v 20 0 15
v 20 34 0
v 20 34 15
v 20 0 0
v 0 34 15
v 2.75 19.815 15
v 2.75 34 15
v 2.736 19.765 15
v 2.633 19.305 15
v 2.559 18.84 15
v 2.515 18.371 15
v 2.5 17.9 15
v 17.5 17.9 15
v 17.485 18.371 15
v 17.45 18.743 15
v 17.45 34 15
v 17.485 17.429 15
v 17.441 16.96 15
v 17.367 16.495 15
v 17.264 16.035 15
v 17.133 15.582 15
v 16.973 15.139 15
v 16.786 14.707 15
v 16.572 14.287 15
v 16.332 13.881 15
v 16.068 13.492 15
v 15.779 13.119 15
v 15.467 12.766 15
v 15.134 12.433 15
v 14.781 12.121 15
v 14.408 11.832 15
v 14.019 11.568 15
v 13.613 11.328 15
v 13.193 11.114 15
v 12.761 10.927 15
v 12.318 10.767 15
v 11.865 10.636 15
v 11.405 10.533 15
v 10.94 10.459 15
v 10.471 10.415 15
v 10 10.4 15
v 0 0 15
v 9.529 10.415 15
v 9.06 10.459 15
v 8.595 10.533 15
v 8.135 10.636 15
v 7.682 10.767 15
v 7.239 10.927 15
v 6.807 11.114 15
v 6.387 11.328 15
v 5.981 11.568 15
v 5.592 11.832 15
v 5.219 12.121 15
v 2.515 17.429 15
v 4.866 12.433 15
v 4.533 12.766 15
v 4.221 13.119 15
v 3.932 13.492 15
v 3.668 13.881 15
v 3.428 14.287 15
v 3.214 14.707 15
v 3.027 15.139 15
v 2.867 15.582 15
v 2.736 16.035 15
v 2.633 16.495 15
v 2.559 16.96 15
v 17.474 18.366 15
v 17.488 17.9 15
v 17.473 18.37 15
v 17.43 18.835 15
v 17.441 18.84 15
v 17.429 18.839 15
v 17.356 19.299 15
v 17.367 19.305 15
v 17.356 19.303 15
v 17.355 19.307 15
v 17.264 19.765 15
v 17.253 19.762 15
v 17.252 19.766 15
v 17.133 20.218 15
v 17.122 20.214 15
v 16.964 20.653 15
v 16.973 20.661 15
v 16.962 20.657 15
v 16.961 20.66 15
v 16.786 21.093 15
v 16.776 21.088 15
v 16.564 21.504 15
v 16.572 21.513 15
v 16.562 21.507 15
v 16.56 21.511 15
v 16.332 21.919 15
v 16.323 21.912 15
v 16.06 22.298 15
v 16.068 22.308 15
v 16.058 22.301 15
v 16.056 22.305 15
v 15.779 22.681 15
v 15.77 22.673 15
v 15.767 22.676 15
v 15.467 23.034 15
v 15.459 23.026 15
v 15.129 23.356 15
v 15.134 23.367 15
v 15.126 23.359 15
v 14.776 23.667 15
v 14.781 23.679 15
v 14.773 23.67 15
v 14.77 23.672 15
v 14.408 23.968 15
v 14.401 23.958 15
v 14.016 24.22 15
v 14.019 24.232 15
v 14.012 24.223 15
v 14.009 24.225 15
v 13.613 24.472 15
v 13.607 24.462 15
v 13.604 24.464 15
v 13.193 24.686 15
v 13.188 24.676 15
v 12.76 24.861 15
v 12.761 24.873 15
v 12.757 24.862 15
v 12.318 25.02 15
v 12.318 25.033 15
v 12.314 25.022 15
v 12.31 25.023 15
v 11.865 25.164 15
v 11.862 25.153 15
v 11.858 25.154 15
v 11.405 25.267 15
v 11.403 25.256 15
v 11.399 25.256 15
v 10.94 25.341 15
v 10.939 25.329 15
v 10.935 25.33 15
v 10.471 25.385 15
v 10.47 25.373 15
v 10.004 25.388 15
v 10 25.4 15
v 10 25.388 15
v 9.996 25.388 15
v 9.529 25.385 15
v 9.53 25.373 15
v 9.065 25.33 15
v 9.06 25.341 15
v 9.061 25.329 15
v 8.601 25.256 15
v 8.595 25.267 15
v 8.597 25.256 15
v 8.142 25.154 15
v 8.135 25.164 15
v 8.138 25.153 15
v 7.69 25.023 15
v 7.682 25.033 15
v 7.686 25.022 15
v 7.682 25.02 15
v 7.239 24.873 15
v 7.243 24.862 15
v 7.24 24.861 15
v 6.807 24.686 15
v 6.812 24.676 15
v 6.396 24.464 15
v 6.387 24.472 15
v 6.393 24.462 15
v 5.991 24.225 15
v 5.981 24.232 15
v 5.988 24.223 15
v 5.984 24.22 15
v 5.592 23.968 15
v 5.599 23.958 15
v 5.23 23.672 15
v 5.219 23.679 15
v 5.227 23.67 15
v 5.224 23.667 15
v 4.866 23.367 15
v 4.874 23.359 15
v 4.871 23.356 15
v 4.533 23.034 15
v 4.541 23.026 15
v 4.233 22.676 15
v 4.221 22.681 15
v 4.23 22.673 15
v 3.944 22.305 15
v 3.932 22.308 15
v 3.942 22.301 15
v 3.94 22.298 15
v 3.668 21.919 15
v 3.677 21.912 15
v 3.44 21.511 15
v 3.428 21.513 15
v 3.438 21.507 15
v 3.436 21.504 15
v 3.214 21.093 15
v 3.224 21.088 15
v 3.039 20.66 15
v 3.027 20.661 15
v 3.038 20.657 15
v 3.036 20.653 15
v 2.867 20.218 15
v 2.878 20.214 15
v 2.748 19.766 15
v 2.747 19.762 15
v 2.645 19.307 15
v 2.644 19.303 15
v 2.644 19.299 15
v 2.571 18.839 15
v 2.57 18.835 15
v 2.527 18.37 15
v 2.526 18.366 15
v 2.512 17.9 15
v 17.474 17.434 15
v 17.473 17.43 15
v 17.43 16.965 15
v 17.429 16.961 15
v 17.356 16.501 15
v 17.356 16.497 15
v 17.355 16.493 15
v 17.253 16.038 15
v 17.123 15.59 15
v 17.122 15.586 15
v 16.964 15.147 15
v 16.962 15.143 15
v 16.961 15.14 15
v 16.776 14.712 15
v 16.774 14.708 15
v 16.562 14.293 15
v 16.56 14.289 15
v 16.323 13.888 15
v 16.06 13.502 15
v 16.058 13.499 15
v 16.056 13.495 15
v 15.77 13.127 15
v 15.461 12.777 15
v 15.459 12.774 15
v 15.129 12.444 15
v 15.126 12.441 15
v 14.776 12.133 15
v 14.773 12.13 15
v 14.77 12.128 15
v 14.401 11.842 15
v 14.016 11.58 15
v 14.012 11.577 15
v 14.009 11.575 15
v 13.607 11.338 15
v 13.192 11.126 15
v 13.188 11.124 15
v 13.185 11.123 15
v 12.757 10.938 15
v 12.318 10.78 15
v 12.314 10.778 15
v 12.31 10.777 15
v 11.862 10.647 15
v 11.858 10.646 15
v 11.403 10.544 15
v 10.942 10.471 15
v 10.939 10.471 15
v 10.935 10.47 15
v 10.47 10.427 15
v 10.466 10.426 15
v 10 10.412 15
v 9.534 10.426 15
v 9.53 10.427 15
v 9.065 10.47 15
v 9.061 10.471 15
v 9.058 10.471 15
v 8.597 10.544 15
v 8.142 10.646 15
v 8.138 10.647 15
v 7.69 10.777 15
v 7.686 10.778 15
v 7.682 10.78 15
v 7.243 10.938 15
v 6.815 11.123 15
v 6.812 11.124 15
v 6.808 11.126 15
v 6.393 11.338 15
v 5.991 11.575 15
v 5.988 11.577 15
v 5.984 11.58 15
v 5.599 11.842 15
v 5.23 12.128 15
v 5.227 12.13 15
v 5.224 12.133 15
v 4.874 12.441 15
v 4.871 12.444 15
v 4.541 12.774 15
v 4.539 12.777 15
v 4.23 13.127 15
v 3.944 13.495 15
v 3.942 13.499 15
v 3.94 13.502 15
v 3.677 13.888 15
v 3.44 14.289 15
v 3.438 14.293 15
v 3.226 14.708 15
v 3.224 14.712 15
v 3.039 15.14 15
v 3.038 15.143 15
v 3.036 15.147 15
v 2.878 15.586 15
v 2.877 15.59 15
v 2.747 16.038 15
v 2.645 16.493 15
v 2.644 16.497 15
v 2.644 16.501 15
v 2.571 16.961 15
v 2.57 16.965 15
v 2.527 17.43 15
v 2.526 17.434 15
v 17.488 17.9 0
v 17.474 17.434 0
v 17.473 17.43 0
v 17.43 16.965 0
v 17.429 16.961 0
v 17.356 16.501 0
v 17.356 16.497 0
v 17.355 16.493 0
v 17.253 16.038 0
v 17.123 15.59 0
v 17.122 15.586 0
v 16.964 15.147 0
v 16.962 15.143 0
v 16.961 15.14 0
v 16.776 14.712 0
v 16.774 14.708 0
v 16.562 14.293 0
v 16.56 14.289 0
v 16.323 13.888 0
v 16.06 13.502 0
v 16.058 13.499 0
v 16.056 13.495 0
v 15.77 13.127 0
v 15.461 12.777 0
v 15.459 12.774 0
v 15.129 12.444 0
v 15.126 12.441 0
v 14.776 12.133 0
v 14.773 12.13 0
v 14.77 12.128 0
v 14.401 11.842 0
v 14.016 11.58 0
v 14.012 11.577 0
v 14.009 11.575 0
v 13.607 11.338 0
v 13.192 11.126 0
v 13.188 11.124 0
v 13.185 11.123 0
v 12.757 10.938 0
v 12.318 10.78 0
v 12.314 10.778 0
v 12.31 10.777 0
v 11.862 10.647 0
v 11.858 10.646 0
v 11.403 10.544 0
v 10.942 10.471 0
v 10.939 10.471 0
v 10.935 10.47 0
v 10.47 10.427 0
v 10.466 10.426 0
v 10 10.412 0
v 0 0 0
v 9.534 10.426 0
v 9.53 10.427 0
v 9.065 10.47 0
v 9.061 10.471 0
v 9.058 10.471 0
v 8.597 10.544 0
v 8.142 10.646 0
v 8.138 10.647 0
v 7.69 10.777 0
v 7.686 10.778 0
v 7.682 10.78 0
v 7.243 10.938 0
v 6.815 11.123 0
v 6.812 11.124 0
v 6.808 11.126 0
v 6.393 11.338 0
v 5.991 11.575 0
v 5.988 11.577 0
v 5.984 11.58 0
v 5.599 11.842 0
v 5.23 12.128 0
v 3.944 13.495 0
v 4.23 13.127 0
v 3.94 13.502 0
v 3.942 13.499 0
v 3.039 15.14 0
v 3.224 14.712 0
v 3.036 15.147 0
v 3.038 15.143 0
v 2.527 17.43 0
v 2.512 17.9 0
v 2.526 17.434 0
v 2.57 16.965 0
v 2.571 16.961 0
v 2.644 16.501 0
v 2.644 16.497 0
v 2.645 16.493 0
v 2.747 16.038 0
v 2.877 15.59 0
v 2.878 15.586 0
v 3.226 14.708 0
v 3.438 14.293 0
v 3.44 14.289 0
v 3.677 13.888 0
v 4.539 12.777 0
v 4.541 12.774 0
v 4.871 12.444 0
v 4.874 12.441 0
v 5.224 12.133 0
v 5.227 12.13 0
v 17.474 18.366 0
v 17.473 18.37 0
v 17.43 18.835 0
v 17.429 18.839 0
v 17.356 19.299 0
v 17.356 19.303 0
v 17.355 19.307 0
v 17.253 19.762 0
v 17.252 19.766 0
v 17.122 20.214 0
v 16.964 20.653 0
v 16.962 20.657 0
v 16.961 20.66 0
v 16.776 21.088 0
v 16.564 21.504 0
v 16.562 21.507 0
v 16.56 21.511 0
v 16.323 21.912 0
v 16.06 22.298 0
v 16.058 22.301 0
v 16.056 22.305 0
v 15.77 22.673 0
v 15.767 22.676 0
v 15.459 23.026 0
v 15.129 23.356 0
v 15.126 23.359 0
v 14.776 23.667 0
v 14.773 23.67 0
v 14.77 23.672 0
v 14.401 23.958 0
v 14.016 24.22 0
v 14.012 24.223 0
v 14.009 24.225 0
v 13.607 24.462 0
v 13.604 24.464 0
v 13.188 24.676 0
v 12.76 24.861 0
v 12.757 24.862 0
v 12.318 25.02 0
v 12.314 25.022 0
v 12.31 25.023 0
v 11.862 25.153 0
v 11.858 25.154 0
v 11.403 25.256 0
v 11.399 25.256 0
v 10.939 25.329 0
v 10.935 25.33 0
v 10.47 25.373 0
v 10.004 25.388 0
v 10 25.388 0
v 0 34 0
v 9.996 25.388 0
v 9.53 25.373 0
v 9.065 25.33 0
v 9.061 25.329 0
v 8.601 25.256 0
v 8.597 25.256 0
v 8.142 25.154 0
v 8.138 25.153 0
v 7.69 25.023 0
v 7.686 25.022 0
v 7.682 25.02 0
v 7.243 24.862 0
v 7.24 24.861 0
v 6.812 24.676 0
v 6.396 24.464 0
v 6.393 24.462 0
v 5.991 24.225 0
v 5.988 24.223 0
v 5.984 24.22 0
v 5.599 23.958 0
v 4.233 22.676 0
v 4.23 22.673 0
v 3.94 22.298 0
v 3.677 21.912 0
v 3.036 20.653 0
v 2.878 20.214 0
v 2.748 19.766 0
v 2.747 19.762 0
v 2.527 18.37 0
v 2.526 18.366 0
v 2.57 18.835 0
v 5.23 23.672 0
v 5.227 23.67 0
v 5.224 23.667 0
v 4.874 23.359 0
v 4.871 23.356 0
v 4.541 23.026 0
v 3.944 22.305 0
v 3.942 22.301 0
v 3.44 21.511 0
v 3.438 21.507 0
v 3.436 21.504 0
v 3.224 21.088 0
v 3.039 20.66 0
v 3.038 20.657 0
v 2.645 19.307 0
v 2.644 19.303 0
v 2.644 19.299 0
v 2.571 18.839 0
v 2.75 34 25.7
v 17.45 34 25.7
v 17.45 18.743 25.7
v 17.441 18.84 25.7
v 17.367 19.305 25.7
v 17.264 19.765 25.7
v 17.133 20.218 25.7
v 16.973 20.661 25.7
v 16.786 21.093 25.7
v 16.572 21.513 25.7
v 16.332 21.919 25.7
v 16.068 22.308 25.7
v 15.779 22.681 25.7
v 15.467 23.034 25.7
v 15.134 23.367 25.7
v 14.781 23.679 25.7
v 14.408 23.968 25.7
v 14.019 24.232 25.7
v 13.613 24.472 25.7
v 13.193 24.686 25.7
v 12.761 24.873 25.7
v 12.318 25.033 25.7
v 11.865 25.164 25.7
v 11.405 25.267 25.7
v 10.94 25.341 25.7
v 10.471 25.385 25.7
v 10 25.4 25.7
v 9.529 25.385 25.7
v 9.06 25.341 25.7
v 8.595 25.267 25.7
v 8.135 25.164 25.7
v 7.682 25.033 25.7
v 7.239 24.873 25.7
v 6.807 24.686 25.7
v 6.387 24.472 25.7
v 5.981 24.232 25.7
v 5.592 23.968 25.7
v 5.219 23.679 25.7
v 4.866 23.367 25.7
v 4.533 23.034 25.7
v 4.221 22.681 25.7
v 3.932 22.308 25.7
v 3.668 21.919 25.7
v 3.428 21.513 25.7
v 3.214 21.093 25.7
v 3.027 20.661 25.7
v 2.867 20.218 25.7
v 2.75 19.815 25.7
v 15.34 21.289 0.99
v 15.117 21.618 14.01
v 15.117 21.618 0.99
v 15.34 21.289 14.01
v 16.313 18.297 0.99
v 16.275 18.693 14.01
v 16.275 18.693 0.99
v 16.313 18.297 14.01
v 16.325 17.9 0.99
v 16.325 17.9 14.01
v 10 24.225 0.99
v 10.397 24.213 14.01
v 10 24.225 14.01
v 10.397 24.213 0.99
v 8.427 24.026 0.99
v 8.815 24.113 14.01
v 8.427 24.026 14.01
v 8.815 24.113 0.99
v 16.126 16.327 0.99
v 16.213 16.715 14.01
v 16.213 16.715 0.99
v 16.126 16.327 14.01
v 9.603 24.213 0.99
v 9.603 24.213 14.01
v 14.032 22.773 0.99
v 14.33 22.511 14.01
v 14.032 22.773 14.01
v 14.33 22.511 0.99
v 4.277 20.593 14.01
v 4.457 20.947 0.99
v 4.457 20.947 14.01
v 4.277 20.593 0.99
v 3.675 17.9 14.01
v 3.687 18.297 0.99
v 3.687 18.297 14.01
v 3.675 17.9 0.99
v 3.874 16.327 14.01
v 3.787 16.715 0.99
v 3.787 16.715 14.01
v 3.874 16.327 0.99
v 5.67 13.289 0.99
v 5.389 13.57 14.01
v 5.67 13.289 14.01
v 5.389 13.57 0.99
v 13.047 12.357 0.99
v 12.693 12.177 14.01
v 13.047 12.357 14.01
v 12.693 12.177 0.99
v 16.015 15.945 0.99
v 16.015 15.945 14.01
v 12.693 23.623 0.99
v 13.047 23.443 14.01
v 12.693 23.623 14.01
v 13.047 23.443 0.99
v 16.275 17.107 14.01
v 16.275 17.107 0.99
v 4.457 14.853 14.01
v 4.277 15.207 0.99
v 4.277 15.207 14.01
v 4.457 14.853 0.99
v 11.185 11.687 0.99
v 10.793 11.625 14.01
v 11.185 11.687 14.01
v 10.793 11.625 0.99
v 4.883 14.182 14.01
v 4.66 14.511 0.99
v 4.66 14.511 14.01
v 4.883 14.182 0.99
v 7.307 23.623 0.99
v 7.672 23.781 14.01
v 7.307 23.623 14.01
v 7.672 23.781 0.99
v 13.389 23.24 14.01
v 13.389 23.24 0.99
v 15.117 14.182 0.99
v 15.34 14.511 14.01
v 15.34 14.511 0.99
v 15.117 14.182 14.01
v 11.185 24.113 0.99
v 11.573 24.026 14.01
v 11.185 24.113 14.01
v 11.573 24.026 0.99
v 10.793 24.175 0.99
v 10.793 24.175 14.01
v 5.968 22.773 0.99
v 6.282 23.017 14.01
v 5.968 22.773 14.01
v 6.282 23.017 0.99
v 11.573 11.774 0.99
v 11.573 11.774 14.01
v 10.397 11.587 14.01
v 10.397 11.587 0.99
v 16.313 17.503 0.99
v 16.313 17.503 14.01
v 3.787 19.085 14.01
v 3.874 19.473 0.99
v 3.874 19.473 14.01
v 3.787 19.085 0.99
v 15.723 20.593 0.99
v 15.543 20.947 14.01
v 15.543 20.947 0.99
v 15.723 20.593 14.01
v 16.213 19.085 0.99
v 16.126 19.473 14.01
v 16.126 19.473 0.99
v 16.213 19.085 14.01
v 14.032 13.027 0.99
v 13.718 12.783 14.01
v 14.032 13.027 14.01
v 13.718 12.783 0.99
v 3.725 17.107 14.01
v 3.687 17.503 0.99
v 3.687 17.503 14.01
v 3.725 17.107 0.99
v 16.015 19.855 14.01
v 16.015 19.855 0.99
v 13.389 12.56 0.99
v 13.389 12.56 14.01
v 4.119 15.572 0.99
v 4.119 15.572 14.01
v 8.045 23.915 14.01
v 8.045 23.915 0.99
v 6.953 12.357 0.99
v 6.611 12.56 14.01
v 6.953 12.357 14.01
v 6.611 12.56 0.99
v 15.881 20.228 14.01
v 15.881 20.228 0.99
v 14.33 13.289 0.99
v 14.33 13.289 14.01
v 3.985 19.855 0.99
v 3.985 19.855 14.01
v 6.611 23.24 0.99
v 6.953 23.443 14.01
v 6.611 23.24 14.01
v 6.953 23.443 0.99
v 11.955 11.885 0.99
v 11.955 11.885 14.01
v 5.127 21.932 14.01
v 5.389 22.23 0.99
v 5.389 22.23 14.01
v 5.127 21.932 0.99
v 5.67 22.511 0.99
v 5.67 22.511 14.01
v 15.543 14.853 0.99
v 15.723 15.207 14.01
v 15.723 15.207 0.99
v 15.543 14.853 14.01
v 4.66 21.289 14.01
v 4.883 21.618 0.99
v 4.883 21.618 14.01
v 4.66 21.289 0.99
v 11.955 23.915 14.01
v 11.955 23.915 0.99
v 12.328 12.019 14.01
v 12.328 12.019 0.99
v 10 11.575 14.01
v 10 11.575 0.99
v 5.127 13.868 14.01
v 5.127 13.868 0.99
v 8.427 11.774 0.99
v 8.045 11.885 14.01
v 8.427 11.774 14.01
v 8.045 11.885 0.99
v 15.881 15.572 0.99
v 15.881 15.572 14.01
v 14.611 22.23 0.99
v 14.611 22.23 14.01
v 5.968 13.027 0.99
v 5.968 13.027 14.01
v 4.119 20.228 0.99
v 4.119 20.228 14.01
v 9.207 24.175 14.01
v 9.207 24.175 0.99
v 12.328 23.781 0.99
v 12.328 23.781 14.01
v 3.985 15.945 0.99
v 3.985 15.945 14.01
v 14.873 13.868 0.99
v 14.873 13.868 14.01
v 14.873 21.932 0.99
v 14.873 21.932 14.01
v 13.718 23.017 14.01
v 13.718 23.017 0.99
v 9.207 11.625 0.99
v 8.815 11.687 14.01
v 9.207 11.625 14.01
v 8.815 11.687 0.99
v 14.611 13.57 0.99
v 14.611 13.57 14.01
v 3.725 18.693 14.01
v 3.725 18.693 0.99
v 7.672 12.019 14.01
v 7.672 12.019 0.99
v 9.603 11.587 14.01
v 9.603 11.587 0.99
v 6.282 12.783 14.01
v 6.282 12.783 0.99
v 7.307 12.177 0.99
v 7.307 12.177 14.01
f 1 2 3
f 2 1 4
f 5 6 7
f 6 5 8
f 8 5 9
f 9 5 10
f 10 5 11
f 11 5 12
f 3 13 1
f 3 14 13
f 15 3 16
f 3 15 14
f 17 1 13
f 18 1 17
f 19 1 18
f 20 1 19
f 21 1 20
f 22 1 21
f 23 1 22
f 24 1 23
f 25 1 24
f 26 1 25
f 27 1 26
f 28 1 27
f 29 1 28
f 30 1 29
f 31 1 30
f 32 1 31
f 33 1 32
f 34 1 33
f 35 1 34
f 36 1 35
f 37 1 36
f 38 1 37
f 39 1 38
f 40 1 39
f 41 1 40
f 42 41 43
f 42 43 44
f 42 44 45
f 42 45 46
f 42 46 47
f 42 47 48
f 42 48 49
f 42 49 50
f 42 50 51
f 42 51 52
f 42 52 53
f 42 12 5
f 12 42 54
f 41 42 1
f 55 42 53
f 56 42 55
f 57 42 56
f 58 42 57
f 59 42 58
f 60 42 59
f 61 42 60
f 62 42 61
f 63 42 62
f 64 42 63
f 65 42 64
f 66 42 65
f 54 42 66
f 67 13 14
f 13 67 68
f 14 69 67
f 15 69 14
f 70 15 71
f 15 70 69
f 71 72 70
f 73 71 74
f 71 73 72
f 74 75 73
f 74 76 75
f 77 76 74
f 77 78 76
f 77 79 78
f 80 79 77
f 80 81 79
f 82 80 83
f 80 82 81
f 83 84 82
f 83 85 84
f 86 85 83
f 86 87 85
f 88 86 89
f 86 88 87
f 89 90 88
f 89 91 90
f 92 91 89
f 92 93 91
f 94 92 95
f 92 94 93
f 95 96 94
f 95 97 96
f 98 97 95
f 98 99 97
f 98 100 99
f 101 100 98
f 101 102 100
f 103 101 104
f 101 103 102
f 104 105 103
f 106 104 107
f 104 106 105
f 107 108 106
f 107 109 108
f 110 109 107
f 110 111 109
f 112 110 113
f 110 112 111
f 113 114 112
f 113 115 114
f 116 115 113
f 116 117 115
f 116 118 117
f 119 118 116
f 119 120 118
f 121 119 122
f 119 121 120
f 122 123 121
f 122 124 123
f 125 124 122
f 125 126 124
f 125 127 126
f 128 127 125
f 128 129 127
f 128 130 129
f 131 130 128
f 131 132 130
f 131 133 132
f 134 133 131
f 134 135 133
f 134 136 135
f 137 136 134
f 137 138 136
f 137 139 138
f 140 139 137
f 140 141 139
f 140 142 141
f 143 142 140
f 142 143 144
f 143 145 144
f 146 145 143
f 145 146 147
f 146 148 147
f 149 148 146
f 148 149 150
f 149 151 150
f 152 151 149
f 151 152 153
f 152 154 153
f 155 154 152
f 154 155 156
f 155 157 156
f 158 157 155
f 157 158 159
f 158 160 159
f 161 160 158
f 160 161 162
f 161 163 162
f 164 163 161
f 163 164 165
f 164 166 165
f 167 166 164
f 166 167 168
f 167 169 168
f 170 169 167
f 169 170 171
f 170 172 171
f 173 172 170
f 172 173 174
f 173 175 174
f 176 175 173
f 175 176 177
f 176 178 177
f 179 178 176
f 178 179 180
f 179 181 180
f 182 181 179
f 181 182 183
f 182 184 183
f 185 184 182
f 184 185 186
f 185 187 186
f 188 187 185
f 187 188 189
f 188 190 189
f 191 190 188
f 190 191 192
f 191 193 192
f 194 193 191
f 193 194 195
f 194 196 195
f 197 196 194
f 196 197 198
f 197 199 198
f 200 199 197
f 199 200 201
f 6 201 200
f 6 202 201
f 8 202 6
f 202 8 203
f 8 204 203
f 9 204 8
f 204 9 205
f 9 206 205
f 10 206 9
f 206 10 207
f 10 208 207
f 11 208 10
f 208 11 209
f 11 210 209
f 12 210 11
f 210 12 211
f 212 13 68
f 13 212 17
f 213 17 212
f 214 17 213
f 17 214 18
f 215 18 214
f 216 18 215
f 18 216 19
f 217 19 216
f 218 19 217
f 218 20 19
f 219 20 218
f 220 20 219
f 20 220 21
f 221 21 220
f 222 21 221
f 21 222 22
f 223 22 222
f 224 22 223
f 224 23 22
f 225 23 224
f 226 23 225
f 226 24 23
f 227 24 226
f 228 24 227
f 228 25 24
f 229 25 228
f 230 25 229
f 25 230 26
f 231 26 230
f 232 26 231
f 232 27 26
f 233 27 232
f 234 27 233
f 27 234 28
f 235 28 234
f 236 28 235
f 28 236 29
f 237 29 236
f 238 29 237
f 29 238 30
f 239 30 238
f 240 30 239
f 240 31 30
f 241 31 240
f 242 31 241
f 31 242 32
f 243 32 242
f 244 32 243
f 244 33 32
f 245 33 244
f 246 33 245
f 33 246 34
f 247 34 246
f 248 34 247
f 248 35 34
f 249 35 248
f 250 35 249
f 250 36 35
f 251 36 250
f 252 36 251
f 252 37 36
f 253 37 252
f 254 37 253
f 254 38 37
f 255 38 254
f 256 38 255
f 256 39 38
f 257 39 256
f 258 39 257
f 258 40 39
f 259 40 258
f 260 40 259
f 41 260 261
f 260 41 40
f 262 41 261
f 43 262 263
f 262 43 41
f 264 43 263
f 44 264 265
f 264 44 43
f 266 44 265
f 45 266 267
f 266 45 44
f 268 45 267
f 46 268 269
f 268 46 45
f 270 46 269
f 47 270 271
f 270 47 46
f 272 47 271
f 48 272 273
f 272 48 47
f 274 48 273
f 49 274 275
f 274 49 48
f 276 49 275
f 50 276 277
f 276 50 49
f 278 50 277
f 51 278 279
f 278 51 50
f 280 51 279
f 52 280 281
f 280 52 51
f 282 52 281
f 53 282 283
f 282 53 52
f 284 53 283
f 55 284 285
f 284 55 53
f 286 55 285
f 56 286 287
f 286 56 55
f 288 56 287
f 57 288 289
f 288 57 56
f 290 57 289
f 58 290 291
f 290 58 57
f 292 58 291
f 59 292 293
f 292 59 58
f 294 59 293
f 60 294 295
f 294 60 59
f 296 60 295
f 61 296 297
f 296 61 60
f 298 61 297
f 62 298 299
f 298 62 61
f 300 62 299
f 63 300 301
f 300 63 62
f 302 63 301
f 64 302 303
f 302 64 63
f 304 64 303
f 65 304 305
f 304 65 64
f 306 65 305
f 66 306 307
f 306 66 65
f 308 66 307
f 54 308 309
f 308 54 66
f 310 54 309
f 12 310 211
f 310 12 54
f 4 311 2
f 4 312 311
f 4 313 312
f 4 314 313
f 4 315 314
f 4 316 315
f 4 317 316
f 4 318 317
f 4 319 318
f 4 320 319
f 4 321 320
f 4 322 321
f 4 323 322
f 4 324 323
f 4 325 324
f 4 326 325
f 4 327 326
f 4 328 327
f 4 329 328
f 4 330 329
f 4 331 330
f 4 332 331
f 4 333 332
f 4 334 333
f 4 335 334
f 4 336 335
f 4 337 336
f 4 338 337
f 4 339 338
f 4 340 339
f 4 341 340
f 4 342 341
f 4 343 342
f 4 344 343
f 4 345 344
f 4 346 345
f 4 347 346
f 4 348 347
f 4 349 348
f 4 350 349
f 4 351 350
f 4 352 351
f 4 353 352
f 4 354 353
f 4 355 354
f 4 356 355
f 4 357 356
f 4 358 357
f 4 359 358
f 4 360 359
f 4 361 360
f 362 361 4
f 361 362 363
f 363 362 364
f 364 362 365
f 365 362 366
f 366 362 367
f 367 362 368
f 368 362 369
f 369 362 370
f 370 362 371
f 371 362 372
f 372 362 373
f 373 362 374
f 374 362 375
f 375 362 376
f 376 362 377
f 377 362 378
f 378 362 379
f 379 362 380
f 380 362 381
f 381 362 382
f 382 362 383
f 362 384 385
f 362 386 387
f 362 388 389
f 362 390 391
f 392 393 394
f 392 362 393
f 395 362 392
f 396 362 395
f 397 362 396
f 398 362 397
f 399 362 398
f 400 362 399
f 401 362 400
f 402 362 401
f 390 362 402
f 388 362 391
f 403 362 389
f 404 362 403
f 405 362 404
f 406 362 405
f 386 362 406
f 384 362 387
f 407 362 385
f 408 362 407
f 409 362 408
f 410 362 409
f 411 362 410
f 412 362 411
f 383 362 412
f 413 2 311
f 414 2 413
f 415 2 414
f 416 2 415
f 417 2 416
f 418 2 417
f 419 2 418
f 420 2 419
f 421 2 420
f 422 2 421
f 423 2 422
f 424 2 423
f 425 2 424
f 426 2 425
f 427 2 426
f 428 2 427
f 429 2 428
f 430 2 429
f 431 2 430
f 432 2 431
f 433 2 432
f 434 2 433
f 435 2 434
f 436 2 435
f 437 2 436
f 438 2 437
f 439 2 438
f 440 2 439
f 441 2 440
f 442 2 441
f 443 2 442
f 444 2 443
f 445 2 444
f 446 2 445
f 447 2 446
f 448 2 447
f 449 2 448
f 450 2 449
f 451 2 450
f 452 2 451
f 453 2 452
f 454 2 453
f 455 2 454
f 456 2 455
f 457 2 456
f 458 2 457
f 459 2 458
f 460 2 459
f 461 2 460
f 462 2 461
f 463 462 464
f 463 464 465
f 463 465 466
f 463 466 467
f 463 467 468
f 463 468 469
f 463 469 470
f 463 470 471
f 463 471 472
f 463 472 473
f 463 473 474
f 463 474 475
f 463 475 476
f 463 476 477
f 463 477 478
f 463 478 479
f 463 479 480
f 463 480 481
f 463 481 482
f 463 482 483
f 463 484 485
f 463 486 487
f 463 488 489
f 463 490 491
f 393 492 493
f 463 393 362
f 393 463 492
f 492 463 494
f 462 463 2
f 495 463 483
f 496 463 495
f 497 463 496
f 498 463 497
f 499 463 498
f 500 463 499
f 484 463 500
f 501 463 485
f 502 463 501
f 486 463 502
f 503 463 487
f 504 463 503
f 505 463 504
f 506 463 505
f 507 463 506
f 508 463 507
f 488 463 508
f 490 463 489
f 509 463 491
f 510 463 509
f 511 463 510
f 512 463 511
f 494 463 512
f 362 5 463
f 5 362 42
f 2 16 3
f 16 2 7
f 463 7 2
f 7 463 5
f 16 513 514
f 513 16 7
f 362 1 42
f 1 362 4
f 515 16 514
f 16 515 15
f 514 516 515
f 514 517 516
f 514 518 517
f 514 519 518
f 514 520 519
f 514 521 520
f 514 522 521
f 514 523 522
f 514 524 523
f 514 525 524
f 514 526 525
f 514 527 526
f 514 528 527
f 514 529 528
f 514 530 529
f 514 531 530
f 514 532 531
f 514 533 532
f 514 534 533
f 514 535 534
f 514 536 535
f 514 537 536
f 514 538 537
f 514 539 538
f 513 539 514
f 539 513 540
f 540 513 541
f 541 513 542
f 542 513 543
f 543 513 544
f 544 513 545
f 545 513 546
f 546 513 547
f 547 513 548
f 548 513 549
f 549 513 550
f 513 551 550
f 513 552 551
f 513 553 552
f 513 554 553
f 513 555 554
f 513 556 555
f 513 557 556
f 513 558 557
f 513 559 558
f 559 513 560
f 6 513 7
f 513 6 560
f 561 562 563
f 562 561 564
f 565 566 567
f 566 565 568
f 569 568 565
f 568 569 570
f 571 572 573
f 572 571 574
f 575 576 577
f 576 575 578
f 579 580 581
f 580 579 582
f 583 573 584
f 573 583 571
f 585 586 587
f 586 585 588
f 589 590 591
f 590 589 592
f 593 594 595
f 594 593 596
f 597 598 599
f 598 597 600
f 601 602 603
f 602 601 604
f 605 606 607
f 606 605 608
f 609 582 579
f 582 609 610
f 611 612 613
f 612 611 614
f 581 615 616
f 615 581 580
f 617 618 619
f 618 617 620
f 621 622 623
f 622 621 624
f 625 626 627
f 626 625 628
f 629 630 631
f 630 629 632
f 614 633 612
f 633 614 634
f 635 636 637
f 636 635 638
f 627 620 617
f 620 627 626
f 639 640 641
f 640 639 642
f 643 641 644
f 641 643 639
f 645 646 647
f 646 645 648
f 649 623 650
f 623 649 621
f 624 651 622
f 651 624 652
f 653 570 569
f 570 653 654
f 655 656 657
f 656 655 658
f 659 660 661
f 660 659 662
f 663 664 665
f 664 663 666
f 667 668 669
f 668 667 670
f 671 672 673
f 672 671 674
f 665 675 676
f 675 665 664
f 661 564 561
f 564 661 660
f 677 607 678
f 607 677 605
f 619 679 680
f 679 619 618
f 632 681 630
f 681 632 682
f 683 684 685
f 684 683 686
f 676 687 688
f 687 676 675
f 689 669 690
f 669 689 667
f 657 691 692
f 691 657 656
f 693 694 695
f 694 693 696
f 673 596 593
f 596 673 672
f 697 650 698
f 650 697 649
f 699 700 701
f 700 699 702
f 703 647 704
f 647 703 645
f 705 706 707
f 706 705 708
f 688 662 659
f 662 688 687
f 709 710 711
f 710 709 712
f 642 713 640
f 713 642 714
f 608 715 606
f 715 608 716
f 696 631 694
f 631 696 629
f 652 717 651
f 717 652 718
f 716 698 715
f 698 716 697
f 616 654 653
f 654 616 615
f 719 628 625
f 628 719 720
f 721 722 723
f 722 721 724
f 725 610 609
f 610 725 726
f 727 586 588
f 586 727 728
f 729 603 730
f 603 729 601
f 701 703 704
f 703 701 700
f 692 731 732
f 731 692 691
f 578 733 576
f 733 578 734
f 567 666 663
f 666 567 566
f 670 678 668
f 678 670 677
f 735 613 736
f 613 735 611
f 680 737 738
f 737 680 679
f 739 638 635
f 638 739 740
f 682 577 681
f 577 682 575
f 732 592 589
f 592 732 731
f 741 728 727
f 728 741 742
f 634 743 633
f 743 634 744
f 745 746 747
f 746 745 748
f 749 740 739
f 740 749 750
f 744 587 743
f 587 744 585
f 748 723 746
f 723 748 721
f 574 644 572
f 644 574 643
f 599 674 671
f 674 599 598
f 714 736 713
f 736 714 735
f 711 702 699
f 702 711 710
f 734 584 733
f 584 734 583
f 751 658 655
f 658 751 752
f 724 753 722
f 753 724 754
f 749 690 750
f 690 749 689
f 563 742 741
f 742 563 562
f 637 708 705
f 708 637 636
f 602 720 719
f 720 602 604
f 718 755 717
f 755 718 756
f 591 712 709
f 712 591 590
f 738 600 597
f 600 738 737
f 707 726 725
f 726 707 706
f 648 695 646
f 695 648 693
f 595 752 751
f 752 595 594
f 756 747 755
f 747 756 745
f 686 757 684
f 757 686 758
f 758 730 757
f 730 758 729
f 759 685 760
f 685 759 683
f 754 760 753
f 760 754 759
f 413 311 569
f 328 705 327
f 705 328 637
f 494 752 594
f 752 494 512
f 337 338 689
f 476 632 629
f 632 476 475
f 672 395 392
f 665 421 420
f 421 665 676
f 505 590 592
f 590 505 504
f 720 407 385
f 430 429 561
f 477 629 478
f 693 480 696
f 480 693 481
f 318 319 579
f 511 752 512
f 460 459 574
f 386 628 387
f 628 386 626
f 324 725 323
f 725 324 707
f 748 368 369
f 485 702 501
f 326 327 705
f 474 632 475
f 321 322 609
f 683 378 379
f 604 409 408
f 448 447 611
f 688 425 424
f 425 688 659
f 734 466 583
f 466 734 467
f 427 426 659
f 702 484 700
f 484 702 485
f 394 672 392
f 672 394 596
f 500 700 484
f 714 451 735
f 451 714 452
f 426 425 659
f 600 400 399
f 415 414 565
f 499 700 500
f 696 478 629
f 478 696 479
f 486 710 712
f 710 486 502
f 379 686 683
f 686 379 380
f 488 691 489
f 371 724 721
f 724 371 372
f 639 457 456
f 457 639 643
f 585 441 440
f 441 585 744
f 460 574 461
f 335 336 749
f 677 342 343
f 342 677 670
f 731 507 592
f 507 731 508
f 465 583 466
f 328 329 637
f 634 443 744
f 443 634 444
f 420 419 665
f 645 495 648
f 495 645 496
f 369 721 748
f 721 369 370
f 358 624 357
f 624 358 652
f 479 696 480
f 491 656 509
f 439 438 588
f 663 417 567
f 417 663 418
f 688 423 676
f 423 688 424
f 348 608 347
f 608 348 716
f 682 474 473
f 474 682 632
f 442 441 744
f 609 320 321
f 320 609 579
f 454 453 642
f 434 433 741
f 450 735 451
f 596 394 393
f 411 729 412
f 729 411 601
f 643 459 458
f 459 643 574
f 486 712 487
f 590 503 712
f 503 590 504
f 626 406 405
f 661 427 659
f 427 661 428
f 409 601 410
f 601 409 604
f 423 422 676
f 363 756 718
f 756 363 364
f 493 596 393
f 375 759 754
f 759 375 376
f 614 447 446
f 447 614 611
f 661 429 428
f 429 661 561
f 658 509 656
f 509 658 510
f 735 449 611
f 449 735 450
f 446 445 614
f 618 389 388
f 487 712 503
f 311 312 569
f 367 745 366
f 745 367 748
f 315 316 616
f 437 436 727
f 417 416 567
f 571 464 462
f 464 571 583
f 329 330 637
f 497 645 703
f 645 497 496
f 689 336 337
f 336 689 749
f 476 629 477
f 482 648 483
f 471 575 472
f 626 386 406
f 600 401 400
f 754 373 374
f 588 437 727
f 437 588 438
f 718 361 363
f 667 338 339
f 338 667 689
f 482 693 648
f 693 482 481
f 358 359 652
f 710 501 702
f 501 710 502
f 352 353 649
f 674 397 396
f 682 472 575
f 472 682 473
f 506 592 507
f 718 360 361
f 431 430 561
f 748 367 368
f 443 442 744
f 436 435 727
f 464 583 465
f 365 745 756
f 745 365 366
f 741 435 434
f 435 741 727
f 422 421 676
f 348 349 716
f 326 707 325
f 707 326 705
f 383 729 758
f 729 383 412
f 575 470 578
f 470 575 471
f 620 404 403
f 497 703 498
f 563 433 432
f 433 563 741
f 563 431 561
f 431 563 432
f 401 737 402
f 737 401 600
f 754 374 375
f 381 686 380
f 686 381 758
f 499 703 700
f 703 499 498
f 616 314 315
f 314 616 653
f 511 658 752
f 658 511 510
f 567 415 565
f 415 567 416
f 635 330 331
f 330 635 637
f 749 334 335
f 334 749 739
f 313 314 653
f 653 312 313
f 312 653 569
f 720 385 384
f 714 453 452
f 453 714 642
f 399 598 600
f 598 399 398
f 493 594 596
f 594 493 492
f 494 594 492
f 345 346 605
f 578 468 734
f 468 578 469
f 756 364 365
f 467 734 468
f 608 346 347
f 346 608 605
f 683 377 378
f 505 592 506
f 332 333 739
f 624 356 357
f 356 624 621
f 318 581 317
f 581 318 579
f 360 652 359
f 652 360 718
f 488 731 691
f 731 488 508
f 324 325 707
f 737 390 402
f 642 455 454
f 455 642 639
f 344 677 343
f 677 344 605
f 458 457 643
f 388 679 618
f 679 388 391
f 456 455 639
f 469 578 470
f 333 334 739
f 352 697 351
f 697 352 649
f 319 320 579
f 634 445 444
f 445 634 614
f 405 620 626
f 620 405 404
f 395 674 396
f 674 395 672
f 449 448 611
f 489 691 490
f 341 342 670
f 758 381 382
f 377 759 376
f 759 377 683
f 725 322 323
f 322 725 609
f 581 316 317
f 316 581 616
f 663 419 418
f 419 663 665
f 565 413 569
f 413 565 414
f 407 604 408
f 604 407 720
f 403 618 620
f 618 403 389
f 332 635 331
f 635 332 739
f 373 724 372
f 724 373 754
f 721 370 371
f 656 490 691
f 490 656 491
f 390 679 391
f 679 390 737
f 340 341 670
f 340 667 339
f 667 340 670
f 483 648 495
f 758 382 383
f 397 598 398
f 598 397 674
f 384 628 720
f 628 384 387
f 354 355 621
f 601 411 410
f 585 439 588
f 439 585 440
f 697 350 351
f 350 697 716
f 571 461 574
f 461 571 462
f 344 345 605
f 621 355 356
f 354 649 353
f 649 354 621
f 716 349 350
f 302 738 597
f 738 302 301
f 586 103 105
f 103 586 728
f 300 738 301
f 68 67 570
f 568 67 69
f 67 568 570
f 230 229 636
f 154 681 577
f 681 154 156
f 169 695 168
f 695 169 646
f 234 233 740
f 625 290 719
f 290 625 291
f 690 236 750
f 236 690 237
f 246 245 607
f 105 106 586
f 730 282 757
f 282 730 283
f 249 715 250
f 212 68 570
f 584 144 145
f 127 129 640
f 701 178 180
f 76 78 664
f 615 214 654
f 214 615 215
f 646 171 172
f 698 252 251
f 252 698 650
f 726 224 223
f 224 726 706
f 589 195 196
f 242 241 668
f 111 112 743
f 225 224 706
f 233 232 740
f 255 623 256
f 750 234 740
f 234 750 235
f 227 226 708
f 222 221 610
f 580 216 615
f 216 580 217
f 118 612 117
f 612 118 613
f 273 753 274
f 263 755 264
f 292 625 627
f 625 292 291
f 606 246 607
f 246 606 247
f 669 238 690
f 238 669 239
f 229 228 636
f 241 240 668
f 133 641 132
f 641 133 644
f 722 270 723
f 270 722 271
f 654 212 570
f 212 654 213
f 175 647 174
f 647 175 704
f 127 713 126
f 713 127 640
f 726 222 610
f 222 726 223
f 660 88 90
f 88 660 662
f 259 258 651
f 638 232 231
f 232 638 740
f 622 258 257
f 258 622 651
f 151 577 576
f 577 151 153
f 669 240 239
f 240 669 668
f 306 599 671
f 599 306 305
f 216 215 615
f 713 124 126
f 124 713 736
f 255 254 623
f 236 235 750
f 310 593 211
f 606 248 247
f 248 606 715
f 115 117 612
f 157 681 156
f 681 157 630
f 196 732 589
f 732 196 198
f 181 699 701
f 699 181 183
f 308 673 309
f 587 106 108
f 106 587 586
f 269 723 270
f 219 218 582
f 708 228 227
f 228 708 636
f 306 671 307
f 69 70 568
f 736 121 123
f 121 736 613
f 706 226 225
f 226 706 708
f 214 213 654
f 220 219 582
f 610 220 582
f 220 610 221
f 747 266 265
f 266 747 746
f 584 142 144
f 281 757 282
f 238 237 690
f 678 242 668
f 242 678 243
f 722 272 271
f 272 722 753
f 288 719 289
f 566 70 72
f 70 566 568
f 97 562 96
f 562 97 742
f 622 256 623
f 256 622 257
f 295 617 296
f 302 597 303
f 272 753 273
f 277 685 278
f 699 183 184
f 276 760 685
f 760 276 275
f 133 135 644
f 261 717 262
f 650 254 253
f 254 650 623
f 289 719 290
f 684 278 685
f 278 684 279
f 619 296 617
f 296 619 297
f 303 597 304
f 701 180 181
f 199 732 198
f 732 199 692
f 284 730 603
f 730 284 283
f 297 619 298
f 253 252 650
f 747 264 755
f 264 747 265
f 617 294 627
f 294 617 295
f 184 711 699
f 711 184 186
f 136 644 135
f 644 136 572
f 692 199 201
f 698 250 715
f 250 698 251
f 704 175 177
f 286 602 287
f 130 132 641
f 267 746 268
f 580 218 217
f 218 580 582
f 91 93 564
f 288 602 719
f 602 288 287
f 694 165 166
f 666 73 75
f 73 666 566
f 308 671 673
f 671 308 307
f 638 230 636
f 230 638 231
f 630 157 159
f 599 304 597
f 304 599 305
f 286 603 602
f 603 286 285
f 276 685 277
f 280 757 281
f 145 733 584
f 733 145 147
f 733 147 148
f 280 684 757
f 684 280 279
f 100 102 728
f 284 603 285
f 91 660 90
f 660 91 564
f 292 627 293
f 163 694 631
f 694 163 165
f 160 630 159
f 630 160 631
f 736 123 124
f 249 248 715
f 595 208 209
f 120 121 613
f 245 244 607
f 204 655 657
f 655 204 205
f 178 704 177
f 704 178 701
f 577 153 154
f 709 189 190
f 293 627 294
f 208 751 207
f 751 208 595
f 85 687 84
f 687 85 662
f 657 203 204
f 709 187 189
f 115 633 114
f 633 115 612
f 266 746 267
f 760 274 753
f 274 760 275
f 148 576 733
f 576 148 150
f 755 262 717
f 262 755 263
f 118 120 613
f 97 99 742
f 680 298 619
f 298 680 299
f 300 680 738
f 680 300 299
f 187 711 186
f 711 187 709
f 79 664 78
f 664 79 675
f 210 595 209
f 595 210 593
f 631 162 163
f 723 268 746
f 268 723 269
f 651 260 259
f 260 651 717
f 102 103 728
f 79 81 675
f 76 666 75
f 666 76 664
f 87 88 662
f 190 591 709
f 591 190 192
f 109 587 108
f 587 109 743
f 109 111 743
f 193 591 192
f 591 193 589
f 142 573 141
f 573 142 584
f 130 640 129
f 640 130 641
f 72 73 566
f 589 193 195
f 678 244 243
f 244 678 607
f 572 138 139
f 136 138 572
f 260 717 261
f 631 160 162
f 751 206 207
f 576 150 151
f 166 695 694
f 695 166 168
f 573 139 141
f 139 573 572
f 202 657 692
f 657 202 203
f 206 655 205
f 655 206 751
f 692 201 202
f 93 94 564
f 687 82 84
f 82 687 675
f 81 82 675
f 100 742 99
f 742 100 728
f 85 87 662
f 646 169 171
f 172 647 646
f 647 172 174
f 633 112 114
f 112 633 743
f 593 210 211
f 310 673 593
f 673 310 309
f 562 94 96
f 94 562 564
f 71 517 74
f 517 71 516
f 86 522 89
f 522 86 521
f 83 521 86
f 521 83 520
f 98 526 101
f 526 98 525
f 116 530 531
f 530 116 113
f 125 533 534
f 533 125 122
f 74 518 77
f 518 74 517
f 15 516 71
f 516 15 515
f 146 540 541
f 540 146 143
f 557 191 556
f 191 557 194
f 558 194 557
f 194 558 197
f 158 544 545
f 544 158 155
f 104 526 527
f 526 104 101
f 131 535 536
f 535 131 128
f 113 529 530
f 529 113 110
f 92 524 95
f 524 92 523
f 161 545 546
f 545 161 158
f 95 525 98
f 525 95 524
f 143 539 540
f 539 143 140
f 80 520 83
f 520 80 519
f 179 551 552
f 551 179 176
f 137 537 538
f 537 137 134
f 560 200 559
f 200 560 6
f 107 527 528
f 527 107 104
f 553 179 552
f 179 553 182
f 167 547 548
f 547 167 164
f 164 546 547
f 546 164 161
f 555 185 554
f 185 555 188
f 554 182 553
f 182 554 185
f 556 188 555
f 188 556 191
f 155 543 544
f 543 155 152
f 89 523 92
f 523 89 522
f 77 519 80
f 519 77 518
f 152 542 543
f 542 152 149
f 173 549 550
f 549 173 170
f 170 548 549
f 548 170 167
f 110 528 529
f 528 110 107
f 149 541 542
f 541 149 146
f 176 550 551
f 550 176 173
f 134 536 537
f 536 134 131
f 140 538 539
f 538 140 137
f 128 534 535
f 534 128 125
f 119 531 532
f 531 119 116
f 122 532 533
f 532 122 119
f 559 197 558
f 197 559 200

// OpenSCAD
$fn = 100;

difference(){

    union(){
        
        cube([ 20, 34, 15]);
        
        translate([ 2.75, 17.9, 15])
        cube([ 14.7, 16.1, 5.2 + 5.5]);
    };
    
    translate([ 10, 17.9, -1])
    cylinder( h = 22, d = 12.65);
    
    translate([ 10, 17.9, -0.01])
    cylinder( h = 1, d1 = 15, d2 = 12.65);
    
    translate([ 10, 17.9, 14.01])
    cylinder( h = 1, d1 = 12.65, d2 = 15);
    
    translate([ 10, 17.9, 15])
    cylinder( h = 20, d = 15);
};
